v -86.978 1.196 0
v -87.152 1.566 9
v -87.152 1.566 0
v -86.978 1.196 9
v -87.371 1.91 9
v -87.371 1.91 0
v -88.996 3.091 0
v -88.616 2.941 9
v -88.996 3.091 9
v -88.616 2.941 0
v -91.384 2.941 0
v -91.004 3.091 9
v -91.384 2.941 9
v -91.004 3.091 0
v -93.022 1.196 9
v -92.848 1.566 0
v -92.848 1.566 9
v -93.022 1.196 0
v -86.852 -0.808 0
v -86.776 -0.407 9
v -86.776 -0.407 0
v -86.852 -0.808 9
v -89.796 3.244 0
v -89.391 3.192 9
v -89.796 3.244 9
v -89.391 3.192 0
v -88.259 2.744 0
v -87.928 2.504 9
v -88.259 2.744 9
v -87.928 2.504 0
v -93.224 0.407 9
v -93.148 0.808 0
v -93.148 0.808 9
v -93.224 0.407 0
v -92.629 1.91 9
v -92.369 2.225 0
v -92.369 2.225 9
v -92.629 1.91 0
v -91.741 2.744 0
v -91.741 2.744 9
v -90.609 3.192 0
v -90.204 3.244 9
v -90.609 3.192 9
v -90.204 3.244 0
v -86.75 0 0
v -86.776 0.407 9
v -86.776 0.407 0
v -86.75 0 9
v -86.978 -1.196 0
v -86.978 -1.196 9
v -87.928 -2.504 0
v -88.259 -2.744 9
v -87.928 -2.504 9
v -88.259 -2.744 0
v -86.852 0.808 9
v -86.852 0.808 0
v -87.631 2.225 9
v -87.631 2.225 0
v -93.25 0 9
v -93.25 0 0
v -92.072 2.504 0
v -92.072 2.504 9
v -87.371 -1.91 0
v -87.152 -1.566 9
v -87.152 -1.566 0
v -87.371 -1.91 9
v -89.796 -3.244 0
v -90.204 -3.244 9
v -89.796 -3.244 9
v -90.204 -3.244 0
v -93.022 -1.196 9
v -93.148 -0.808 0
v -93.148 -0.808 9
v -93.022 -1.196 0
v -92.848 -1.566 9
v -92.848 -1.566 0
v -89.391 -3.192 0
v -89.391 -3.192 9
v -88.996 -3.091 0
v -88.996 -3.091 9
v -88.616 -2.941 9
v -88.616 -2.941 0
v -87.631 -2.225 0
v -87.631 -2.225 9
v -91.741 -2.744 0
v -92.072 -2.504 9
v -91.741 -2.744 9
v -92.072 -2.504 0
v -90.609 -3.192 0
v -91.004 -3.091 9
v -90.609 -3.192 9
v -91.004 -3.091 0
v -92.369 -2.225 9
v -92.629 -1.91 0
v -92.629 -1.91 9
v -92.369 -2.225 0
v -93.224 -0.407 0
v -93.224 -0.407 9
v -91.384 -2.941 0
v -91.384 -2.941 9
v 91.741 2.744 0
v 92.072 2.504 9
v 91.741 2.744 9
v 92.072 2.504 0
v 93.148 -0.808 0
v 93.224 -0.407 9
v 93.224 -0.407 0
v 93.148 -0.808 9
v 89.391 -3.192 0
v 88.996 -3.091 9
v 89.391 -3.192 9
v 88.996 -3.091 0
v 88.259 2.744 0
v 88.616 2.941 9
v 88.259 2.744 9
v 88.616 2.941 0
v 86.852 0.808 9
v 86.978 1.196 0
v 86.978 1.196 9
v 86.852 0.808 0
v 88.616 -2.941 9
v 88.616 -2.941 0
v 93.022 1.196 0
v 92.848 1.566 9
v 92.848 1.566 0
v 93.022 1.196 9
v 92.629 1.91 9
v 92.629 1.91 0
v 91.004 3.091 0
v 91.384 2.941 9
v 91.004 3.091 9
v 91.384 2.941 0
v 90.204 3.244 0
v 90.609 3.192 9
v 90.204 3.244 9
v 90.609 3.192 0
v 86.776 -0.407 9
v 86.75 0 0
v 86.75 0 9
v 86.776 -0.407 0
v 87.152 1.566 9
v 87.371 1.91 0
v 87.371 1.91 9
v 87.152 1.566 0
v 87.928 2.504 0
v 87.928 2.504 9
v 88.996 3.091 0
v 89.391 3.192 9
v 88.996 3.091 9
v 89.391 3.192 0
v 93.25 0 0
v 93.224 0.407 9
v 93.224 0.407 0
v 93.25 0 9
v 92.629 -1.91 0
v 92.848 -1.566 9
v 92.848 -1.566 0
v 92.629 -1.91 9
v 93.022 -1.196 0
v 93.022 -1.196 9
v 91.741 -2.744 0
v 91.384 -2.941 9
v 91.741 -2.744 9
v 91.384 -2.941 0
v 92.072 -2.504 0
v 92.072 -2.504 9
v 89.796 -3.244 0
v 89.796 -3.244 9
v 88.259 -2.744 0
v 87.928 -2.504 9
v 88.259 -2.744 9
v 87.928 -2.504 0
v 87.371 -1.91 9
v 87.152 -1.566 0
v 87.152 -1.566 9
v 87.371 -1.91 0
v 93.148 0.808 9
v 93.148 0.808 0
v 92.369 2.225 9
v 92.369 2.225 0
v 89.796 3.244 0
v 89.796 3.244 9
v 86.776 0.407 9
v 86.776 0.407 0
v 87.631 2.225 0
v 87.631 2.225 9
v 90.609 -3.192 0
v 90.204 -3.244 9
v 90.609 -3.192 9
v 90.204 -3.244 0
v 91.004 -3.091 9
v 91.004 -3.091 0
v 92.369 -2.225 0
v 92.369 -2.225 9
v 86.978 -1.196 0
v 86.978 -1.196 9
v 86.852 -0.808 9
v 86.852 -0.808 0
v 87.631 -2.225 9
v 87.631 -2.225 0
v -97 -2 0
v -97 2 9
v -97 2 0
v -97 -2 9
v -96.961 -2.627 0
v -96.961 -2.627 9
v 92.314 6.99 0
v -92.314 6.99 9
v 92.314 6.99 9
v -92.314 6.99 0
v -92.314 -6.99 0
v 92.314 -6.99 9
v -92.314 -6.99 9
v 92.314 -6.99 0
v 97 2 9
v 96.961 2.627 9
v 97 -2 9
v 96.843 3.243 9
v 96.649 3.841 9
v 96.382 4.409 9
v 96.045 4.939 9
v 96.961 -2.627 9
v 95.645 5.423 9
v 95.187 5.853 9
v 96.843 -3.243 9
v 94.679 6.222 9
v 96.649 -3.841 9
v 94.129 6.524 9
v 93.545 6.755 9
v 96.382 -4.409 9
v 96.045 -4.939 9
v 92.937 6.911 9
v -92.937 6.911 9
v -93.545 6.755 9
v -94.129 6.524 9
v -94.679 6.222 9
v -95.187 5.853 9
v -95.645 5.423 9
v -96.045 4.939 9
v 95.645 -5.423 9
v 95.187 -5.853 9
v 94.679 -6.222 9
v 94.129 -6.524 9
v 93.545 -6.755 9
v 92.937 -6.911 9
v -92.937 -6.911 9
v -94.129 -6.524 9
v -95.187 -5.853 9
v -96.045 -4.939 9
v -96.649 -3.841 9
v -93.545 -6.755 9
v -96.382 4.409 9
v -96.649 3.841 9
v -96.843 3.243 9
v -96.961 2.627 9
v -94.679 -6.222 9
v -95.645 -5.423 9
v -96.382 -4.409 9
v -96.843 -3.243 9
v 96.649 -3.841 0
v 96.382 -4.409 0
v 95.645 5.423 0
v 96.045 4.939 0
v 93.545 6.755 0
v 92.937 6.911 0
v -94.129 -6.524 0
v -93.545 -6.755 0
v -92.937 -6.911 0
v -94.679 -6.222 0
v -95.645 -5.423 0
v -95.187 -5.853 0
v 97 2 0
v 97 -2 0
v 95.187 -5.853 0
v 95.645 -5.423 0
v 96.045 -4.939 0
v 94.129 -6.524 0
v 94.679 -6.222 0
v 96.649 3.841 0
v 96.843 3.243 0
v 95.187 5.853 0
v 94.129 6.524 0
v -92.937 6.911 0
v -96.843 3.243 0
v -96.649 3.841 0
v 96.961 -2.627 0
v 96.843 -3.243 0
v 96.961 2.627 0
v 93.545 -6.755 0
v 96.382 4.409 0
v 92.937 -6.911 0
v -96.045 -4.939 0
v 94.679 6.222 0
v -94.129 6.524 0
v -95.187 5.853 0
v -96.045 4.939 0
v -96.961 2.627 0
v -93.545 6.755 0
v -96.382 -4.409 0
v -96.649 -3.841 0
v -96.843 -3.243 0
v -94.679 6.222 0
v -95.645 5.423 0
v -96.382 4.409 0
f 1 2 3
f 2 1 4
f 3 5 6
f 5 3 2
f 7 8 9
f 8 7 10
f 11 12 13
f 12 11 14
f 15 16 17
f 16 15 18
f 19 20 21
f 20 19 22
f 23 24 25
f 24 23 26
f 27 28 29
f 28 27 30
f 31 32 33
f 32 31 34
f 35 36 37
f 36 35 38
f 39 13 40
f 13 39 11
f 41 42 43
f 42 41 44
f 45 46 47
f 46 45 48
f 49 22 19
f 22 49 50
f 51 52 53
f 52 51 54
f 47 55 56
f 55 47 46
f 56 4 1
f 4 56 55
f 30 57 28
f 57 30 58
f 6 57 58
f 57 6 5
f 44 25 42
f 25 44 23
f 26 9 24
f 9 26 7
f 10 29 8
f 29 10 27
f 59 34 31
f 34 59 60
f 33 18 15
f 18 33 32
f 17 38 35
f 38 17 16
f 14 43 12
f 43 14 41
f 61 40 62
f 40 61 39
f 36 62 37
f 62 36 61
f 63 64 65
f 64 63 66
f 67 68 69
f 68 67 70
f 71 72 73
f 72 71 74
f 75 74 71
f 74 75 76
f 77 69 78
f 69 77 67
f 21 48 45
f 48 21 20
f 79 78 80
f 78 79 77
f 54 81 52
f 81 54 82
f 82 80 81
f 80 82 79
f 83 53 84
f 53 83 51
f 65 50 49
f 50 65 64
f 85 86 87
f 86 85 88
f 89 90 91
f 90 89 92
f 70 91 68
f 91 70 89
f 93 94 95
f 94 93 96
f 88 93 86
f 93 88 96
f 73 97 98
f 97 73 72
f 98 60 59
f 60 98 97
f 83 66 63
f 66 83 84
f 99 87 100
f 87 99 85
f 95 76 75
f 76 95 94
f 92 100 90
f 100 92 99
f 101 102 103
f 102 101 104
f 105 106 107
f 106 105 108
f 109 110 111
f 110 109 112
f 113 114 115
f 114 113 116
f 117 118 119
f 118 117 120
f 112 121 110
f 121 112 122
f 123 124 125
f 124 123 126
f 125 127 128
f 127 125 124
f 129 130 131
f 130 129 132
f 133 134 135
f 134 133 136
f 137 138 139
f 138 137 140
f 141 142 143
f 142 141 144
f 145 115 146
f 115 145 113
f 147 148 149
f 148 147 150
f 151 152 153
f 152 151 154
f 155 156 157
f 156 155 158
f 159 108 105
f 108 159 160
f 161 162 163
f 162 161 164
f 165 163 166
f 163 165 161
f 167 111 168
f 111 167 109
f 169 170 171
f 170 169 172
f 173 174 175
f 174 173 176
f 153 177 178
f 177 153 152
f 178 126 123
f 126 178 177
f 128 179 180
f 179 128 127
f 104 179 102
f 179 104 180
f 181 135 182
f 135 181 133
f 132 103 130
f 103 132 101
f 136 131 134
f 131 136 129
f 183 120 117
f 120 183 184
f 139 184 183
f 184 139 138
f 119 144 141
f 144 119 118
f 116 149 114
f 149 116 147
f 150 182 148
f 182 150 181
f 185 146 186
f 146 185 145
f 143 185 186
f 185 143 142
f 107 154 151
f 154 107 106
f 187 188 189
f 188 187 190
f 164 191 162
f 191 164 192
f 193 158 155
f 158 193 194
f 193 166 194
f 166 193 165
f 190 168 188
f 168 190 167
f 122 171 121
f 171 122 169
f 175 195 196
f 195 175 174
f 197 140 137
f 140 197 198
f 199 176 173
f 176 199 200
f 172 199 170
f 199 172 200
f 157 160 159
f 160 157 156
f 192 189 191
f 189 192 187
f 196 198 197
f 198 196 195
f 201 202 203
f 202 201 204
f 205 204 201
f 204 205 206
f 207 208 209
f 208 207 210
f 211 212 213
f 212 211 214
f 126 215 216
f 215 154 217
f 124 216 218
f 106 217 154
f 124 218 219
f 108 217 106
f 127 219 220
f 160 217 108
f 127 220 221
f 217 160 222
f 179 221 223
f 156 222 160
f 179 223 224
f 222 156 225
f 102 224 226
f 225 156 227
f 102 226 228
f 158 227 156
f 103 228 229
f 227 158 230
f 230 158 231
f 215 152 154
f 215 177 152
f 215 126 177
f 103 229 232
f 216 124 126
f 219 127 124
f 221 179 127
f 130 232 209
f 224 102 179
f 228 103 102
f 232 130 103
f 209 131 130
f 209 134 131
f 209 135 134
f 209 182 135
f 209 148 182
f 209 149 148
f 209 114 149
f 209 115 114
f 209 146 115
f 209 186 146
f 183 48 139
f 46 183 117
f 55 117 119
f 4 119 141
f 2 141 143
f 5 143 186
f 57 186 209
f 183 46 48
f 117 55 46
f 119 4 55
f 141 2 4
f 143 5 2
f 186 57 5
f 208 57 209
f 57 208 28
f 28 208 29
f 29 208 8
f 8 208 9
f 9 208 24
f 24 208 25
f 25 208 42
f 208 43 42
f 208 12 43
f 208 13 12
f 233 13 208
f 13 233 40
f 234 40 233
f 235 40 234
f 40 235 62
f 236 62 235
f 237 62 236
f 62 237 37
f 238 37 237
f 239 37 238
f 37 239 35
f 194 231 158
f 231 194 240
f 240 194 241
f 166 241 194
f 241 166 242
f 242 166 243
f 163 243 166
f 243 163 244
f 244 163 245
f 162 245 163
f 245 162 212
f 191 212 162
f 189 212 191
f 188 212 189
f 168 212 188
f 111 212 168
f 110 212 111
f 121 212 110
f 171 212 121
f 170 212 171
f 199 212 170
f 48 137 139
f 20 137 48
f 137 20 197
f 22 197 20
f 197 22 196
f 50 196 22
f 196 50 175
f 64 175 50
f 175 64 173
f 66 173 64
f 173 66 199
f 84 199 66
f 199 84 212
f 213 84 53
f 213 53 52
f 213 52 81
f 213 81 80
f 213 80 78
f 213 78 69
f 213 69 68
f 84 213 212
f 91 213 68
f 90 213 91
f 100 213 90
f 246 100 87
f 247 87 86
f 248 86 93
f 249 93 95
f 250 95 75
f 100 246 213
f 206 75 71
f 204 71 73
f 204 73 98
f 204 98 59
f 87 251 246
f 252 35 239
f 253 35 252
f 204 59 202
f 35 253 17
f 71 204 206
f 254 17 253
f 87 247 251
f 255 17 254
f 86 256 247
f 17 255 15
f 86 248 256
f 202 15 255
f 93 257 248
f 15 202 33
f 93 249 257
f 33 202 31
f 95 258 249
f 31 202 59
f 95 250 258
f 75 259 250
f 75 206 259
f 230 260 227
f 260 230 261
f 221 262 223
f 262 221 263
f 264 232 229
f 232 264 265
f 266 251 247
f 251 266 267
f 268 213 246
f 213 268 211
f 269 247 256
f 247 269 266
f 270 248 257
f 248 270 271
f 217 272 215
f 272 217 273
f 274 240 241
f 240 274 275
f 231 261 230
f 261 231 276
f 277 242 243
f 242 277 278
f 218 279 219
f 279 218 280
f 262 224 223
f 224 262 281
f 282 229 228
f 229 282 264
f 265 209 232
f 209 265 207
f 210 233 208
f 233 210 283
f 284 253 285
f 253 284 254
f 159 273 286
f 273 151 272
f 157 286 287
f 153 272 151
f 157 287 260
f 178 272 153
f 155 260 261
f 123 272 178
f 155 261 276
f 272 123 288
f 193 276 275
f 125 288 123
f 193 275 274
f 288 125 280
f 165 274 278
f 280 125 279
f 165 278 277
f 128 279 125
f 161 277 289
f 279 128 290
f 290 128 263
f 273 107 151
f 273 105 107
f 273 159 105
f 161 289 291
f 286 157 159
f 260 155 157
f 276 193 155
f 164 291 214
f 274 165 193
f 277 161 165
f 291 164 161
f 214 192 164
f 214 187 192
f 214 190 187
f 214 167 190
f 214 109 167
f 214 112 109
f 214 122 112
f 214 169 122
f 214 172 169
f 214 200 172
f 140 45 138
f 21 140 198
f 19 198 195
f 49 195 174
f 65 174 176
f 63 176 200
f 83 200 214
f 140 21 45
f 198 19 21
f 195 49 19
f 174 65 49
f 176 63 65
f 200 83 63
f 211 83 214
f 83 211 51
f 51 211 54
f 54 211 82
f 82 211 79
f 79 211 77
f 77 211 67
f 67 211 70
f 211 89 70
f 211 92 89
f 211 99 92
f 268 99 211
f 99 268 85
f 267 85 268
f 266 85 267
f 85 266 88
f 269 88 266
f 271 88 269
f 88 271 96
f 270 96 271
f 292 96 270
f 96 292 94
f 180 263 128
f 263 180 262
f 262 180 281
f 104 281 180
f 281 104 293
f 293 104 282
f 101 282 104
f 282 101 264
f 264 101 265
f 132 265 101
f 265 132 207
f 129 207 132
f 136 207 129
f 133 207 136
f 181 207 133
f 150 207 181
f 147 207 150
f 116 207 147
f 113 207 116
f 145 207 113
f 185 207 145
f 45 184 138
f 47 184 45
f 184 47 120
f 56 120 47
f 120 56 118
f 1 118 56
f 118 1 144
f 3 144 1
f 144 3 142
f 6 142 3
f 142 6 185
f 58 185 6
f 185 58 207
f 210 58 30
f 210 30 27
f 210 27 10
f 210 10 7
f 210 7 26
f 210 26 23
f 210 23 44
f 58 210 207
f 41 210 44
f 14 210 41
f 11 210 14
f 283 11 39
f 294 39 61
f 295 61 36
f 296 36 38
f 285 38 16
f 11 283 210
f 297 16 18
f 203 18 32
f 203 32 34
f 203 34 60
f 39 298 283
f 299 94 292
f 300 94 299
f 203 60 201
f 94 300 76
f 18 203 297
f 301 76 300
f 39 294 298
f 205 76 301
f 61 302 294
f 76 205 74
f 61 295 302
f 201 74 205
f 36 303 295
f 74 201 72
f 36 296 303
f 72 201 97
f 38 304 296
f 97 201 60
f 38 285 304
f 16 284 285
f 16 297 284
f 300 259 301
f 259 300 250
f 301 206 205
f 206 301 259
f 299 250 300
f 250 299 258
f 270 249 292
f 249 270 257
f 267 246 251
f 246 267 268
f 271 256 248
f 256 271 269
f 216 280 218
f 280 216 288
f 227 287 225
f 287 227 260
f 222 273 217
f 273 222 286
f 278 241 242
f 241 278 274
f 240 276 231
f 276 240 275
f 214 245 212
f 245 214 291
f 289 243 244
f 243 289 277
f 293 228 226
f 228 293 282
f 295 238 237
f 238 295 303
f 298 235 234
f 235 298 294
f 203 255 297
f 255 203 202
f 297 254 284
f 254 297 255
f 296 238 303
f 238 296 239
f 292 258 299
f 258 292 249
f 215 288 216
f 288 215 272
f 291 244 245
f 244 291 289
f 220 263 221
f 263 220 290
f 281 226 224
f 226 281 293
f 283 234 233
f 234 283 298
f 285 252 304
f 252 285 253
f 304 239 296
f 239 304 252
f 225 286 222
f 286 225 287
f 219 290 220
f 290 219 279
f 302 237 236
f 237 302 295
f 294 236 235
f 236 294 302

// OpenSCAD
$fn = 50;


difference() {
	union() {
		hull() {
			translate(v = [-92.0000000000, 2.0000000000, 0]) {
				cylinder(h = 9, r = 5);
			}
			translate(v = [92.0000000000, 2.0000000000, 0]) {
				cylinder(h = 9, r = 5);
			}
			translate(v = [-92.0000000000, -2.0000000000, 0]) {
				cylinder(h = 9, r = 5);
			}
			translate(v = [92.0000000000, -2.0000000000, 0]) {
				cylinder(h = 9, r = 5);
			}
		}
	}
	union() {
		translate(v = [-90.0000000000, 0.0000000000, 0]) {
			cylinder(h = 9, r = 3.2500000000);
		}
		translate(v = [90.0000000000, 0.0000000000, 0]) {
			cylinder(h = 9, r = 3.2500000000);
		}
		translate(v = [-90.0000000000, 0.0000000000, 0]) {
			cylinder(h = 9, r = 1.8000000000);
		}
		translate(v = [90.0000000000, 0.0000000000, 0]) {
			cylinder(h = 9, r = 1.8000000000);
		}
		translate(v = [-90.0000000000, 0.0000000000, 0]) {
			cylinder(h = 9, r = 1.8000000000);
		}
		translate(v = [90.0000000000, 0.0000000000, 0]) {
			cylinder(h = 9, r = 1.8000000000);
		}
		translate(v = [-90.0000000000, 0.0000000000, 0]) {
			cylinder(h = 9, r = 1.8000000000);
		}
		translate(v = [90.0000000000, 0.0000000000, 0]) {
			cylinder(h = 9, r = 1.8000000000);
		}
	}
}
